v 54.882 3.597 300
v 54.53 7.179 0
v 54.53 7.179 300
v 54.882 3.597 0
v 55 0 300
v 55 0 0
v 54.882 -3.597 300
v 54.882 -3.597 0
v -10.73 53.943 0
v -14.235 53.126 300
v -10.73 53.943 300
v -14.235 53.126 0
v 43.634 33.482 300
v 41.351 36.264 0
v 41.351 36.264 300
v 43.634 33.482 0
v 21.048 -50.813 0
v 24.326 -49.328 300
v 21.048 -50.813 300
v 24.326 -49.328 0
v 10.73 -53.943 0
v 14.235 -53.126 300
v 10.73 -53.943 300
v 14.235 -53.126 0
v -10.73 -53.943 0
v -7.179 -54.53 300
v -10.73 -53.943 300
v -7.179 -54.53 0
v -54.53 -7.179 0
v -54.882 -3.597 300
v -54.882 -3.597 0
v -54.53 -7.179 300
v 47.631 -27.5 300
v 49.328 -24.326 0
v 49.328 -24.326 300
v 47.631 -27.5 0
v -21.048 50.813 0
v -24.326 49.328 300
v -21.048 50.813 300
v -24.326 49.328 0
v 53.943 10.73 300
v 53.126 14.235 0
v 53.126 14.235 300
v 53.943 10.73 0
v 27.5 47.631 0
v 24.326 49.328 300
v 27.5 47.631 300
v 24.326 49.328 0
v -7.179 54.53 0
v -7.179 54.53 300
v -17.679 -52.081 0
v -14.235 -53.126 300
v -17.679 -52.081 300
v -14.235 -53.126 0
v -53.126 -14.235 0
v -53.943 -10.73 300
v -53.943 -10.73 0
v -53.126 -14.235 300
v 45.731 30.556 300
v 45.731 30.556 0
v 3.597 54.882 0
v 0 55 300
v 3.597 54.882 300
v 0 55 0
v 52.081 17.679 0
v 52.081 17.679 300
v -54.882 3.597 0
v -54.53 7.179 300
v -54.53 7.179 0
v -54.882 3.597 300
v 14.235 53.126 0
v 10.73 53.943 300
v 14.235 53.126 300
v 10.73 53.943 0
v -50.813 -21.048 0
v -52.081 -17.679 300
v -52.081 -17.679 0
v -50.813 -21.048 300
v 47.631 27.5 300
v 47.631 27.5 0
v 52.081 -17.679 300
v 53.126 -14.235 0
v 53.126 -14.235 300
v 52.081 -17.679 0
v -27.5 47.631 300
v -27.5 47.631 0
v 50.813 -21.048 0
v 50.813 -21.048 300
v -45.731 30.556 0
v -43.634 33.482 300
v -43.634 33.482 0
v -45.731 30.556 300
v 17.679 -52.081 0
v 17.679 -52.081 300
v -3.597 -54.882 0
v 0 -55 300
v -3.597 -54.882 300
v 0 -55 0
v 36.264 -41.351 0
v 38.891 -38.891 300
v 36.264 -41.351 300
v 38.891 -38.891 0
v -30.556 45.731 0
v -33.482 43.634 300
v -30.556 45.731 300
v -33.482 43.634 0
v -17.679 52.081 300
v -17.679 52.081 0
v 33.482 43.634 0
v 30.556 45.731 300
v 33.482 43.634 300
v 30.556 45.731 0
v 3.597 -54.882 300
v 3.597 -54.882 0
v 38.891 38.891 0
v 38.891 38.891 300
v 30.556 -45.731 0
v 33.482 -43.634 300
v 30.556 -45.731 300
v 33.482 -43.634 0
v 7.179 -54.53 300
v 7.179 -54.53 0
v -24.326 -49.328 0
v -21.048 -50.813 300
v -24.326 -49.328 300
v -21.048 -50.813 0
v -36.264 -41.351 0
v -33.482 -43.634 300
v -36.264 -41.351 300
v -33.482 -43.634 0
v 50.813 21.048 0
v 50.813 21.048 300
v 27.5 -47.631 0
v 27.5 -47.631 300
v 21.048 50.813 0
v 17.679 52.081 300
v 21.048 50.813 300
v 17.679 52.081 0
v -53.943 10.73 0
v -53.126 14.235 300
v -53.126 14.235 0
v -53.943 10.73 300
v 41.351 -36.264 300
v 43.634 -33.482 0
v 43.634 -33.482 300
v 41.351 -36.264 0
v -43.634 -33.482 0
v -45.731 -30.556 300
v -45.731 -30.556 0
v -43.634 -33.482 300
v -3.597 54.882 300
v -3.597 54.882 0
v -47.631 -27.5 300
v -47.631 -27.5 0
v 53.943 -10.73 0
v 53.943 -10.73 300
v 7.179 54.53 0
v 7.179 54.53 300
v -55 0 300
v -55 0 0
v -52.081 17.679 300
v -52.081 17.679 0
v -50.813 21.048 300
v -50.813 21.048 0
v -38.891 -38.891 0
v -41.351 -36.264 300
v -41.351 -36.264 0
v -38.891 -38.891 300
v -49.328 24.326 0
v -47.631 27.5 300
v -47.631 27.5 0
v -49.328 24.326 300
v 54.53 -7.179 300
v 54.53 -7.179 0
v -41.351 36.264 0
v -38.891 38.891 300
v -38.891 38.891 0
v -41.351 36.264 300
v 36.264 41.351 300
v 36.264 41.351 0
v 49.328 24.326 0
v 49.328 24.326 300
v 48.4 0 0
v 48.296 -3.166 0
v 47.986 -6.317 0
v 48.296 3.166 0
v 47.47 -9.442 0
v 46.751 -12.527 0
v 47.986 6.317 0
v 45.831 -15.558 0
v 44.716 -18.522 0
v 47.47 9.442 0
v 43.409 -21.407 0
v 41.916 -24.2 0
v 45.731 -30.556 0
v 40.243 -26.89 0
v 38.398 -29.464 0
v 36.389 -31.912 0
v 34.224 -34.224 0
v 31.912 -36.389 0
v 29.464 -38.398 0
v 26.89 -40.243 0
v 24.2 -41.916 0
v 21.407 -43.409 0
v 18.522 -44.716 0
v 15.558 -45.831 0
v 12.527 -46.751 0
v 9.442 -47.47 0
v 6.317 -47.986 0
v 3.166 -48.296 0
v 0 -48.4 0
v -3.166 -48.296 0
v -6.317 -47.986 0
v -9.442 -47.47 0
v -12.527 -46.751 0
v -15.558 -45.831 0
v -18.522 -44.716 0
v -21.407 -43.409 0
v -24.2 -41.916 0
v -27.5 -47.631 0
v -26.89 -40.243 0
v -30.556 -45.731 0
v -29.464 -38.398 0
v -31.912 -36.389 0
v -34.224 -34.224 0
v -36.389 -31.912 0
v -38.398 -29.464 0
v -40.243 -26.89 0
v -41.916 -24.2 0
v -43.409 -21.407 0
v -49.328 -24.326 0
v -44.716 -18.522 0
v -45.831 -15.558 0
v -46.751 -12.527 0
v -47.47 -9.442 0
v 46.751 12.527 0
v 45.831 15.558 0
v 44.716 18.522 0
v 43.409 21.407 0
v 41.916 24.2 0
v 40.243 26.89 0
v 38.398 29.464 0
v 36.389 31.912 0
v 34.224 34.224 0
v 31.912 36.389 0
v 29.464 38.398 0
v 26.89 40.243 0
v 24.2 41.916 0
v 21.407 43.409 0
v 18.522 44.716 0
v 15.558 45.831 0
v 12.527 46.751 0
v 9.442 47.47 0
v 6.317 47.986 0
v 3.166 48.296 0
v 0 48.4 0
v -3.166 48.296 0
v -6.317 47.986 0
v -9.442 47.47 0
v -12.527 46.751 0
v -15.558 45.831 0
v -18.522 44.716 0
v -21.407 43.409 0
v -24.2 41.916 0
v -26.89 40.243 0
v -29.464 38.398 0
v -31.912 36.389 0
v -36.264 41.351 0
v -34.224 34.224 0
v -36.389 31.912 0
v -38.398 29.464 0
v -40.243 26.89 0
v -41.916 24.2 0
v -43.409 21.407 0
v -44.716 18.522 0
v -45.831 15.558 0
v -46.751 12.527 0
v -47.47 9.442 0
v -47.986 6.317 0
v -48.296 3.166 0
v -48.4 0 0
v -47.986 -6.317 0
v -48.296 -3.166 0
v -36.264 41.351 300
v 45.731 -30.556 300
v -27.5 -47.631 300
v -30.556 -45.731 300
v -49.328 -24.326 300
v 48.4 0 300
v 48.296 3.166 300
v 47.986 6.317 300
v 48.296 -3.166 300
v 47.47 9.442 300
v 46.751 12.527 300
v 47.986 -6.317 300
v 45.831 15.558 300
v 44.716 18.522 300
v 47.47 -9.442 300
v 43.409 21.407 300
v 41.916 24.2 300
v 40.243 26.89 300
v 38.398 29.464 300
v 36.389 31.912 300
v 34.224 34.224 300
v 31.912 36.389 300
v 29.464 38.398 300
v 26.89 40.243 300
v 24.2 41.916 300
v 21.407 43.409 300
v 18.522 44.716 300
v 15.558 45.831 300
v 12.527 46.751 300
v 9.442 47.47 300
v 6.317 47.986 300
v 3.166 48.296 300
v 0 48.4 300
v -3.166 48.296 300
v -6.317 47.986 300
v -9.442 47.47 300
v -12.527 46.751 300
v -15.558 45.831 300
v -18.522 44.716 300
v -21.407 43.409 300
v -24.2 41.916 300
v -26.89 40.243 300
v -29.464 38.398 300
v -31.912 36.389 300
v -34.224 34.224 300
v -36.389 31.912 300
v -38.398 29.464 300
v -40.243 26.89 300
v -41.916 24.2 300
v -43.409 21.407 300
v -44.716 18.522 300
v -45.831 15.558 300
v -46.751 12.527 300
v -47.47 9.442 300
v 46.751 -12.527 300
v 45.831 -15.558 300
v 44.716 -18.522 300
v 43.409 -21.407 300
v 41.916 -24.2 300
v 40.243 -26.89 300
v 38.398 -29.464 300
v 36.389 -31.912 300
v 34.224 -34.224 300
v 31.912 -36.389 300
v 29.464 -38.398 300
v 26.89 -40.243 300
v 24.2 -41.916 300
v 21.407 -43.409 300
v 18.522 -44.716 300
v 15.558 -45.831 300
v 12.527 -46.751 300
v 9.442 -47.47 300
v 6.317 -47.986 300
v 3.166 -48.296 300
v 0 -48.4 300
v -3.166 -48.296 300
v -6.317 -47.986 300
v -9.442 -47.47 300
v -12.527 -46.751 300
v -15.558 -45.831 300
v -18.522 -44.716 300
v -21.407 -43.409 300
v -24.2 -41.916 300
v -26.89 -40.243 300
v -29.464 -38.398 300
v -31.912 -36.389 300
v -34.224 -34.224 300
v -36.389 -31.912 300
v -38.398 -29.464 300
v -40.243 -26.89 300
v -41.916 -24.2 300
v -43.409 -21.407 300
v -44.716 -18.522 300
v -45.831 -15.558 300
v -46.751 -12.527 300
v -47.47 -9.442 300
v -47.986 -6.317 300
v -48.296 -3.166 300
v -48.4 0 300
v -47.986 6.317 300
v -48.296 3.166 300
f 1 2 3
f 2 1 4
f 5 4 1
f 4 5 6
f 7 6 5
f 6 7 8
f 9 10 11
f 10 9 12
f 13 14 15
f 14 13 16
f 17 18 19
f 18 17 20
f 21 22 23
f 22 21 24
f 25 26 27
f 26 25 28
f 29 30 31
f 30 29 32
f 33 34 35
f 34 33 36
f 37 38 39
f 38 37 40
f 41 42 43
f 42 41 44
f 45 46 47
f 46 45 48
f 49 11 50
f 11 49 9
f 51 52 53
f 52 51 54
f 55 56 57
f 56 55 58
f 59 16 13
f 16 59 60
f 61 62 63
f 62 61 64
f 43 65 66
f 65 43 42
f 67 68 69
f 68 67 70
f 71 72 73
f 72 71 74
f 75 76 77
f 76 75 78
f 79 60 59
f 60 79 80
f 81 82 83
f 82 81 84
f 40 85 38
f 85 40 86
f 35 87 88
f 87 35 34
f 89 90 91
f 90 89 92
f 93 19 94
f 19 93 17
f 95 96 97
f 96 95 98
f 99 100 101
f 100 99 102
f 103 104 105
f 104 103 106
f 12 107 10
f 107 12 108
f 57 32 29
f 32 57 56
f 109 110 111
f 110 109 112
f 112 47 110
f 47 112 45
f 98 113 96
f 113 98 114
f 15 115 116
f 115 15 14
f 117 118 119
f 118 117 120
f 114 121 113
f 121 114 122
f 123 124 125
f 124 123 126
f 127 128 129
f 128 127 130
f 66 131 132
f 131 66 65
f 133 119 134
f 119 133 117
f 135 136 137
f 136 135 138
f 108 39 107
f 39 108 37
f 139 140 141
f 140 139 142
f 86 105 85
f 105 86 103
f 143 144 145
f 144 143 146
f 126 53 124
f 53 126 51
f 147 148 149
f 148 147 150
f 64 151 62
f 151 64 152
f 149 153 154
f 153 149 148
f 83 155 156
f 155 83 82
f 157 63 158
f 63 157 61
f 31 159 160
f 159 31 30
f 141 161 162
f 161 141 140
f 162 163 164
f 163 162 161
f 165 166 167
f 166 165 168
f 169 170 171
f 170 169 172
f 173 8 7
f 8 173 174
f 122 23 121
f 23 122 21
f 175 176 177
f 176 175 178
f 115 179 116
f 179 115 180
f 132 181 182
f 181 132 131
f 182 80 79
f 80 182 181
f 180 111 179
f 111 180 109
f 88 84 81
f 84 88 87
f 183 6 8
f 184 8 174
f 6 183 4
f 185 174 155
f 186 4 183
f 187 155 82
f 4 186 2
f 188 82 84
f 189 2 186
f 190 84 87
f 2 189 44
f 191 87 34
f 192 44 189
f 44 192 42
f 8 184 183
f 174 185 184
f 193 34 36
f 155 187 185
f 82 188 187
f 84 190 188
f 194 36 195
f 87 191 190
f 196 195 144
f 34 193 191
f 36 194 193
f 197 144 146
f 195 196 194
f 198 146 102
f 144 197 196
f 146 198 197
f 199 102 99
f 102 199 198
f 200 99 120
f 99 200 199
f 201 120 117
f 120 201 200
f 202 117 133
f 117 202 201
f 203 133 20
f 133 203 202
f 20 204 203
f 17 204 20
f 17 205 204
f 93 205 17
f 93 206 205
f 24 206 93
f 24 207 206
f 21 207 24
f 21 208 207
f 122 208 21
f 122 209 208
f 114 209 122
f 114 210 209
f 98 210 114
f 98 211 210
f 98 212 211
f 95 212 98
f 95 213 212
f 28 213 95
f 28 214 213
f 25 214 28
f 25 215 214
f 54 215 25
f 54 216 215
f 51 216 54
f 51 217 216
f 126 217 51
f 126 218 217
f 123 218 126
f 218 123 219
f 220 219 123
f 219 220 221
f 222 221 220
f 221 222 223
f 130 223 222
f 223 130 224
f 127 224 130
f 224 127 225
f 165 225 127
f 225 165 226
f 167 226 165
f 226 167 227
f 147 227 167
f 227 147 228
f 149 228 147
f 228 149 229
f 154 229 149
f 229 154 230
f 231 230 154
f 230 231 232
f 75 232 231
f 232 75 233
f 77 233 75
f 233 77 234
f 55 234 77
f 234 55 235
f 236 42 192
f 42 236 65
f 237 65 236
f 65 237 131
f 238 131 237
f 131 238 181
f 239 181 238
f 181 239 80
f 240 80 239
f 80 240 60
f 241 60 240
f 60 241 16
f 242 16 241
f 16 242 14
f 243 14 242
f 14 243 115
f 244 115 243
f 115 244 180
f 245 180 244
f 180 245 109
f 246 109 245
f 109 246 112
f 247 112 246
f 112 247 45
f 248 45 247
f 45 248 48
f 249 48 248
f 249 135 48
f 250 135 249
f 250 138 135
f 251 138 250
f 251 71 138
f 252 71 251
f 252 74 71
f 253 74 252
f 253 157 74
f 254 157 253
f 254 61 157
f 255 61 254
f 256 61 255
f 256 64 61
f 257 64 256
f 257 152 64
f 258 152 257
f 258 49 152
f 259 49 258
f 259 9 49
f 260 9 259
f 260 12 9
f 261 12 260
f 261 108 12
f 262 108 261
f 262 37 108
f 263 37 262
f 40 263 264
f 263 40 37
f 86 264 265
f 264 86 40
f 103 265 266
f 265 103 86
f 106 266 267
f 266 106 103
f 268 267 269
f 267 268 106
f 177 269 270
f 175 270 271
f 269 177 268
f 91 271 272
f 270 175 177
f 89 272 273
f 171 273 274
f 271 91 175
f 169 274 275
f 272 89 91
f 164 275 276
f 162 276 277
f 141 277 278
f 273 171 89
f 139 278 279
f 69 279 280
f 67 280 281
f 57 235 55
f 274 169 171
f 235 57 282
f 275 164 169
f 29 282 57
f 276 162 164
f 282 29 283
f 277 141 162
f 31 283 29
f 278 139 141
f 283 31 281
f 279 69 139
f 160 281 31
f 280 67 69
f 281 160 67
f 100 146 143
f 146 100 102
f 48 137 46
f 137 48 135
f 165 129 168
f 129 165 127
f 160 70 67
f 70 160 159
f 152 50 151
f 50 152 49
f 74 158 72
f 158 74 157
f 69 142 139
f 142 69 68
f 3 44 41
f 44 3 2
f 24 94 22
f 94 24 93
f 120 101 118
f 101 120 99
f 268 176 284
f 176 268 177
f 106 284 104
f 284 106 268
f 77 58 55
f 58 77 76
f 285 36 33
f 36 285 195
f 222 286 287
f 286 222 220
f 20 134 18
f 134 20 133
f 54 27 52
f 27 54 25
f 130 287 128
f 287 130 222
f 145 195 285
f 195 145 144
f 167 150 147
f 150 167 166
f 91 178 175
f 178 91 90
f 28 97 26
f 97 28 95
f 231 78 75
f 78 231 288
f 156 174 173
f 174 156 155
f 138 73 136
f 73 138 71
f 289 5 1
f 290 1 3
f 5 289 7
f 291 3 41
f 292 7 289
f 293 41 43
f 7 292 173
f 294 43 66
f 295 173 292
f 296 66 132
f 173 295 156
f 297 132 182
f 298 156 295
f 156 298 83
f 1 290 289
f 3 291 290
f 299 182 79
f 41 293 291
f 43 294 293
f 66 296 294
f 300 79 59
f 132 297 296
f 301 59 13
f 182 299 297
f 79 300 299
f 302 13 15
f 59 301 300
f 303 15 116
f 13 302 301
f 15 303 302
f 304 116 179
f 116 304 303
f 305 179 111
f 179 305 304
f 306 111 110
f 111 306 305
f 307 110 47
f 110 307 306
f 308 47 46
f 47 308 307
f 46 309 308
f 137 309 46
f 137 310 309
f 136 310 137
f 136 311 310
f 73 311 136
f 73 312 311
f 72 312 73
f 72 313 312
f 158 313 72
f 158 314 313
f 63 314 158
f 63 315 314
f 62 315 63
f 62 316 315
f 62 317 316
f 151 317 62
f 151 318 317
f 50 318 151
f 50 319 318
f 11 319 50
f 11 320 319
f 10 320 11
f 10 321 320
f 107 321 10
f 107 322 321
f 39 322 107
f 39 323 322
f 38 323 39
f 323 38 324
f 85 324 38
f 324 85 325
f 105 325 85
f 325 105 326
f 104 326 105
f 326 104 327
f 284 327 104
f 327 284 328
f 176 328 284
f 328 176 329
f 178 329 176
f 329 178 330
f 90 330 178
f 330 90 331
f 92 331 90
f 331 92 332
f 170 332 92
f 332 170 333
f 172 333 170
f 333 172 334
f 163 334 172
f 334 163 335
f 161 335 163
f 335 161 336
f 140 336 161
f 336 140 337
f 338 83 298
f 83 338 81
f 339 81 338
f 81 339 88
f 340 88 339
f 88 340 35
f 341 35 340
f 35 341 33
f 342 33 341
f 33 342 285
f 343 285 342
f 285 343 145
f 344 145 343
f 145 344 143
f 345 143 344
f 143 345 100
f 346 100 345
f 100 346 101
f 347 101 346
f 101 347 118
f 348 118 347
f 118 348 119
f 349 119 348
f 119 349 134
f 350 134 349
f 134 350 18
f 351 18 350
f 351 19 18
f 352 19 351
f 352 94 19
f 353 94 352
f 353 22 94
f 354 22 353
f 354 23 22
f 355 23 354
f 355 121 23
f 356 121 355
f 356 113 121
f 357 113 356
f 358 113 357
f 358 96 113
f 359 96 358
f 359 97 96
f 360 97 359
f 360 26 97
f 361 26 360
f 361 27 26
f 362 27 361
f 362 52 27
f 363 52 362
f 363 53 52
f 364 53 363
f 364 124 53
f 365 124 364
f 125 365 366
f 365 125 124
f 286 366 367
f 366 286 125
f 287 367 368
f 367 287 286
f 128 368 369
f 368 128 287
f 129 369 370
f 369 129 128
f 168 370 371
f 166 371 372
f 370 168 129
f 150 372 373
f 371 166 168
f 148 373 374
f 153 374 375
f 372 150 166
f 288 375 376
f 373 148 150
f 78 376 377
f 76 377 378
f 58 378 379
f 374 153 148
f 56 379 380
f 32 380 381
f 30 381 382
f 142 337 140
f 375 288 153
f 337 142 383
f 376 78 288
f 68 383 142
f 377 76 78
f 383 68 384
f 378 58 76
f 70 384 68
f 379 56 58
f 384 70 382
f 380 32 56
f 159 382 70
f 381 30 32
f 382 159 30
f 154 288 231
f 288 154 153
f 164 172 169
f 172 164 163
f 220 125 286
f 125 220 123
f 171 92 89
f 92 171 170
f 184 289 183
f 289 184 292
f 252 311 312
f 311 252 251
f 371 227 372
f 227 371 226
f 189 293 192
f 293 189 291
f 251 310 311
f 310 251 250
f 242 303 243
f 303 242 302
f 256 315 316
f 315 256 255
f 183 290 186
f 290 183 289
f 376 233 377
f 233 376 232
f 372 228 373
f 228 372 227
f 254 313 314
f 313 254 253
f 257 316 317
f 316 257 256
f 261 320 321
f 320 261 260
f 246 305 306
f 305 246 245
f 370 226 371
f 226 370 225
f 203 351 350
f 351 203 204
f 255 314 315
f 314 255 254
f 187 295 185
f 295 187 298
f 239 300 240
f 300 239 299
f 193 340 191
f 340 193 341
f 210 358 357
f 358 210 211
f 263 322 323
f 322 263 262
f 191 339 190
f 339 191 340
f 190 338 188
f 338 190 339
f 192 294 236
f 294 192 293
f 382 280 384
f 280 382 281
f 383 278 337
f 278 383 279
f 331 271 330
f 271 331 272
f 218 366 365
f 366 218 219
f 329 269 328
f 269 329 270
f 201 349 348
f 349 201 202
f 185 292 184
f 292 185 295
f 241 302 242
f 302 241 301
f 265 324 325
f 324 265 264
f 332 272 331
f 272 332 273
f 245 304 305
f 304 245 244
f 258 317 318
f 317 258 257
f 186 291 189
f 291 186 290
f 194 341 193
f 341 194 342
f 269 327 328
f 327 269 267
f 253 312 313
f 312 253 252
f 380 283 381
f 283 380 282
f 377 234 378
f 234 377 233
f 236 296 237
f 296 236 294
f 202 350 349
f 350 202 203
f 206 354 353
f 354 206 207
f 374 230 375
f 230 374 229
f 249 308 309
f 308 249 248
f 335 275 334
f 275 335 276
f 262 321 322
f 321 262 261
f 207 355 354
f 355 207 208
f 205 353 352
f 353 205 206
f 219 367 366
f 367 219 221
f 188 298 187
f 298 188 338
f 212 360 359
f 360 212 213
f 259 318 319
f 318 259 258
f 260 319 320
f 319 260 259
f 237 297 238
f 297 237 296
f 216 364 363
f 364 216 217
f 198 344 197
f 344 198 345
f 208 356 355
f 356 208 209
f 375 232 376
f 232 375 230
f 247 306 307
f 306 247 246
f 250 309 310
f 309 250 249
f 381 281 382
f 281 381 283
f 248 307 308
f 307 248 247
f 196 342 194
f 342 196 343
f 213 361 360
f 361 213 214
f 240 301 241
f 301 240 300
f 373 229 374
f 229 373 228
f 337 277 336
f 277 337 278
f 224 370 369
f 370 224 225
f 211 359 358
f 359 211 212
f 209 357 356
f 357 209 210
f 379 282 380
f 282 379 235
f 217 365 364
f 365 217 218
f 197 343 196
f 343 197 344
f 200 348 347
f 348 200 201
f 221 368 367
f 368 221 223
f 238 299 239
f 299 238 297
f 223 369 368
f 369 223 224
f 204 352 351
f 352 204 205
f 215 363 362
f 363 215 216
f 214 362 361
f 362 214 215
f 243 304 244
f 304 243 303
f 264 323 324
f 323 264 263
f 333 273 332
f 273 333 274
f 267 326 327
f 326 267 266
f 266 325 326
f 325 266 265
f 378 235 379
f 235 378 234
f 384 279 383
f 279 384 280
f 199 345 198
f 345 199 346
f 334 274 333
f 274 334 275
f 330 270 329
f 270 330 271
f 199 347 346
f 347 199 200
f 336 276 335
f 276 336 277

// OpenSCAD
// Renders a standalone d110 SDR17 (PN10) demo pipe segment.
// See lib_d110.scad for parameters and README.md for sourcing.
use <lib_d110.scad>
pipe_segment();
